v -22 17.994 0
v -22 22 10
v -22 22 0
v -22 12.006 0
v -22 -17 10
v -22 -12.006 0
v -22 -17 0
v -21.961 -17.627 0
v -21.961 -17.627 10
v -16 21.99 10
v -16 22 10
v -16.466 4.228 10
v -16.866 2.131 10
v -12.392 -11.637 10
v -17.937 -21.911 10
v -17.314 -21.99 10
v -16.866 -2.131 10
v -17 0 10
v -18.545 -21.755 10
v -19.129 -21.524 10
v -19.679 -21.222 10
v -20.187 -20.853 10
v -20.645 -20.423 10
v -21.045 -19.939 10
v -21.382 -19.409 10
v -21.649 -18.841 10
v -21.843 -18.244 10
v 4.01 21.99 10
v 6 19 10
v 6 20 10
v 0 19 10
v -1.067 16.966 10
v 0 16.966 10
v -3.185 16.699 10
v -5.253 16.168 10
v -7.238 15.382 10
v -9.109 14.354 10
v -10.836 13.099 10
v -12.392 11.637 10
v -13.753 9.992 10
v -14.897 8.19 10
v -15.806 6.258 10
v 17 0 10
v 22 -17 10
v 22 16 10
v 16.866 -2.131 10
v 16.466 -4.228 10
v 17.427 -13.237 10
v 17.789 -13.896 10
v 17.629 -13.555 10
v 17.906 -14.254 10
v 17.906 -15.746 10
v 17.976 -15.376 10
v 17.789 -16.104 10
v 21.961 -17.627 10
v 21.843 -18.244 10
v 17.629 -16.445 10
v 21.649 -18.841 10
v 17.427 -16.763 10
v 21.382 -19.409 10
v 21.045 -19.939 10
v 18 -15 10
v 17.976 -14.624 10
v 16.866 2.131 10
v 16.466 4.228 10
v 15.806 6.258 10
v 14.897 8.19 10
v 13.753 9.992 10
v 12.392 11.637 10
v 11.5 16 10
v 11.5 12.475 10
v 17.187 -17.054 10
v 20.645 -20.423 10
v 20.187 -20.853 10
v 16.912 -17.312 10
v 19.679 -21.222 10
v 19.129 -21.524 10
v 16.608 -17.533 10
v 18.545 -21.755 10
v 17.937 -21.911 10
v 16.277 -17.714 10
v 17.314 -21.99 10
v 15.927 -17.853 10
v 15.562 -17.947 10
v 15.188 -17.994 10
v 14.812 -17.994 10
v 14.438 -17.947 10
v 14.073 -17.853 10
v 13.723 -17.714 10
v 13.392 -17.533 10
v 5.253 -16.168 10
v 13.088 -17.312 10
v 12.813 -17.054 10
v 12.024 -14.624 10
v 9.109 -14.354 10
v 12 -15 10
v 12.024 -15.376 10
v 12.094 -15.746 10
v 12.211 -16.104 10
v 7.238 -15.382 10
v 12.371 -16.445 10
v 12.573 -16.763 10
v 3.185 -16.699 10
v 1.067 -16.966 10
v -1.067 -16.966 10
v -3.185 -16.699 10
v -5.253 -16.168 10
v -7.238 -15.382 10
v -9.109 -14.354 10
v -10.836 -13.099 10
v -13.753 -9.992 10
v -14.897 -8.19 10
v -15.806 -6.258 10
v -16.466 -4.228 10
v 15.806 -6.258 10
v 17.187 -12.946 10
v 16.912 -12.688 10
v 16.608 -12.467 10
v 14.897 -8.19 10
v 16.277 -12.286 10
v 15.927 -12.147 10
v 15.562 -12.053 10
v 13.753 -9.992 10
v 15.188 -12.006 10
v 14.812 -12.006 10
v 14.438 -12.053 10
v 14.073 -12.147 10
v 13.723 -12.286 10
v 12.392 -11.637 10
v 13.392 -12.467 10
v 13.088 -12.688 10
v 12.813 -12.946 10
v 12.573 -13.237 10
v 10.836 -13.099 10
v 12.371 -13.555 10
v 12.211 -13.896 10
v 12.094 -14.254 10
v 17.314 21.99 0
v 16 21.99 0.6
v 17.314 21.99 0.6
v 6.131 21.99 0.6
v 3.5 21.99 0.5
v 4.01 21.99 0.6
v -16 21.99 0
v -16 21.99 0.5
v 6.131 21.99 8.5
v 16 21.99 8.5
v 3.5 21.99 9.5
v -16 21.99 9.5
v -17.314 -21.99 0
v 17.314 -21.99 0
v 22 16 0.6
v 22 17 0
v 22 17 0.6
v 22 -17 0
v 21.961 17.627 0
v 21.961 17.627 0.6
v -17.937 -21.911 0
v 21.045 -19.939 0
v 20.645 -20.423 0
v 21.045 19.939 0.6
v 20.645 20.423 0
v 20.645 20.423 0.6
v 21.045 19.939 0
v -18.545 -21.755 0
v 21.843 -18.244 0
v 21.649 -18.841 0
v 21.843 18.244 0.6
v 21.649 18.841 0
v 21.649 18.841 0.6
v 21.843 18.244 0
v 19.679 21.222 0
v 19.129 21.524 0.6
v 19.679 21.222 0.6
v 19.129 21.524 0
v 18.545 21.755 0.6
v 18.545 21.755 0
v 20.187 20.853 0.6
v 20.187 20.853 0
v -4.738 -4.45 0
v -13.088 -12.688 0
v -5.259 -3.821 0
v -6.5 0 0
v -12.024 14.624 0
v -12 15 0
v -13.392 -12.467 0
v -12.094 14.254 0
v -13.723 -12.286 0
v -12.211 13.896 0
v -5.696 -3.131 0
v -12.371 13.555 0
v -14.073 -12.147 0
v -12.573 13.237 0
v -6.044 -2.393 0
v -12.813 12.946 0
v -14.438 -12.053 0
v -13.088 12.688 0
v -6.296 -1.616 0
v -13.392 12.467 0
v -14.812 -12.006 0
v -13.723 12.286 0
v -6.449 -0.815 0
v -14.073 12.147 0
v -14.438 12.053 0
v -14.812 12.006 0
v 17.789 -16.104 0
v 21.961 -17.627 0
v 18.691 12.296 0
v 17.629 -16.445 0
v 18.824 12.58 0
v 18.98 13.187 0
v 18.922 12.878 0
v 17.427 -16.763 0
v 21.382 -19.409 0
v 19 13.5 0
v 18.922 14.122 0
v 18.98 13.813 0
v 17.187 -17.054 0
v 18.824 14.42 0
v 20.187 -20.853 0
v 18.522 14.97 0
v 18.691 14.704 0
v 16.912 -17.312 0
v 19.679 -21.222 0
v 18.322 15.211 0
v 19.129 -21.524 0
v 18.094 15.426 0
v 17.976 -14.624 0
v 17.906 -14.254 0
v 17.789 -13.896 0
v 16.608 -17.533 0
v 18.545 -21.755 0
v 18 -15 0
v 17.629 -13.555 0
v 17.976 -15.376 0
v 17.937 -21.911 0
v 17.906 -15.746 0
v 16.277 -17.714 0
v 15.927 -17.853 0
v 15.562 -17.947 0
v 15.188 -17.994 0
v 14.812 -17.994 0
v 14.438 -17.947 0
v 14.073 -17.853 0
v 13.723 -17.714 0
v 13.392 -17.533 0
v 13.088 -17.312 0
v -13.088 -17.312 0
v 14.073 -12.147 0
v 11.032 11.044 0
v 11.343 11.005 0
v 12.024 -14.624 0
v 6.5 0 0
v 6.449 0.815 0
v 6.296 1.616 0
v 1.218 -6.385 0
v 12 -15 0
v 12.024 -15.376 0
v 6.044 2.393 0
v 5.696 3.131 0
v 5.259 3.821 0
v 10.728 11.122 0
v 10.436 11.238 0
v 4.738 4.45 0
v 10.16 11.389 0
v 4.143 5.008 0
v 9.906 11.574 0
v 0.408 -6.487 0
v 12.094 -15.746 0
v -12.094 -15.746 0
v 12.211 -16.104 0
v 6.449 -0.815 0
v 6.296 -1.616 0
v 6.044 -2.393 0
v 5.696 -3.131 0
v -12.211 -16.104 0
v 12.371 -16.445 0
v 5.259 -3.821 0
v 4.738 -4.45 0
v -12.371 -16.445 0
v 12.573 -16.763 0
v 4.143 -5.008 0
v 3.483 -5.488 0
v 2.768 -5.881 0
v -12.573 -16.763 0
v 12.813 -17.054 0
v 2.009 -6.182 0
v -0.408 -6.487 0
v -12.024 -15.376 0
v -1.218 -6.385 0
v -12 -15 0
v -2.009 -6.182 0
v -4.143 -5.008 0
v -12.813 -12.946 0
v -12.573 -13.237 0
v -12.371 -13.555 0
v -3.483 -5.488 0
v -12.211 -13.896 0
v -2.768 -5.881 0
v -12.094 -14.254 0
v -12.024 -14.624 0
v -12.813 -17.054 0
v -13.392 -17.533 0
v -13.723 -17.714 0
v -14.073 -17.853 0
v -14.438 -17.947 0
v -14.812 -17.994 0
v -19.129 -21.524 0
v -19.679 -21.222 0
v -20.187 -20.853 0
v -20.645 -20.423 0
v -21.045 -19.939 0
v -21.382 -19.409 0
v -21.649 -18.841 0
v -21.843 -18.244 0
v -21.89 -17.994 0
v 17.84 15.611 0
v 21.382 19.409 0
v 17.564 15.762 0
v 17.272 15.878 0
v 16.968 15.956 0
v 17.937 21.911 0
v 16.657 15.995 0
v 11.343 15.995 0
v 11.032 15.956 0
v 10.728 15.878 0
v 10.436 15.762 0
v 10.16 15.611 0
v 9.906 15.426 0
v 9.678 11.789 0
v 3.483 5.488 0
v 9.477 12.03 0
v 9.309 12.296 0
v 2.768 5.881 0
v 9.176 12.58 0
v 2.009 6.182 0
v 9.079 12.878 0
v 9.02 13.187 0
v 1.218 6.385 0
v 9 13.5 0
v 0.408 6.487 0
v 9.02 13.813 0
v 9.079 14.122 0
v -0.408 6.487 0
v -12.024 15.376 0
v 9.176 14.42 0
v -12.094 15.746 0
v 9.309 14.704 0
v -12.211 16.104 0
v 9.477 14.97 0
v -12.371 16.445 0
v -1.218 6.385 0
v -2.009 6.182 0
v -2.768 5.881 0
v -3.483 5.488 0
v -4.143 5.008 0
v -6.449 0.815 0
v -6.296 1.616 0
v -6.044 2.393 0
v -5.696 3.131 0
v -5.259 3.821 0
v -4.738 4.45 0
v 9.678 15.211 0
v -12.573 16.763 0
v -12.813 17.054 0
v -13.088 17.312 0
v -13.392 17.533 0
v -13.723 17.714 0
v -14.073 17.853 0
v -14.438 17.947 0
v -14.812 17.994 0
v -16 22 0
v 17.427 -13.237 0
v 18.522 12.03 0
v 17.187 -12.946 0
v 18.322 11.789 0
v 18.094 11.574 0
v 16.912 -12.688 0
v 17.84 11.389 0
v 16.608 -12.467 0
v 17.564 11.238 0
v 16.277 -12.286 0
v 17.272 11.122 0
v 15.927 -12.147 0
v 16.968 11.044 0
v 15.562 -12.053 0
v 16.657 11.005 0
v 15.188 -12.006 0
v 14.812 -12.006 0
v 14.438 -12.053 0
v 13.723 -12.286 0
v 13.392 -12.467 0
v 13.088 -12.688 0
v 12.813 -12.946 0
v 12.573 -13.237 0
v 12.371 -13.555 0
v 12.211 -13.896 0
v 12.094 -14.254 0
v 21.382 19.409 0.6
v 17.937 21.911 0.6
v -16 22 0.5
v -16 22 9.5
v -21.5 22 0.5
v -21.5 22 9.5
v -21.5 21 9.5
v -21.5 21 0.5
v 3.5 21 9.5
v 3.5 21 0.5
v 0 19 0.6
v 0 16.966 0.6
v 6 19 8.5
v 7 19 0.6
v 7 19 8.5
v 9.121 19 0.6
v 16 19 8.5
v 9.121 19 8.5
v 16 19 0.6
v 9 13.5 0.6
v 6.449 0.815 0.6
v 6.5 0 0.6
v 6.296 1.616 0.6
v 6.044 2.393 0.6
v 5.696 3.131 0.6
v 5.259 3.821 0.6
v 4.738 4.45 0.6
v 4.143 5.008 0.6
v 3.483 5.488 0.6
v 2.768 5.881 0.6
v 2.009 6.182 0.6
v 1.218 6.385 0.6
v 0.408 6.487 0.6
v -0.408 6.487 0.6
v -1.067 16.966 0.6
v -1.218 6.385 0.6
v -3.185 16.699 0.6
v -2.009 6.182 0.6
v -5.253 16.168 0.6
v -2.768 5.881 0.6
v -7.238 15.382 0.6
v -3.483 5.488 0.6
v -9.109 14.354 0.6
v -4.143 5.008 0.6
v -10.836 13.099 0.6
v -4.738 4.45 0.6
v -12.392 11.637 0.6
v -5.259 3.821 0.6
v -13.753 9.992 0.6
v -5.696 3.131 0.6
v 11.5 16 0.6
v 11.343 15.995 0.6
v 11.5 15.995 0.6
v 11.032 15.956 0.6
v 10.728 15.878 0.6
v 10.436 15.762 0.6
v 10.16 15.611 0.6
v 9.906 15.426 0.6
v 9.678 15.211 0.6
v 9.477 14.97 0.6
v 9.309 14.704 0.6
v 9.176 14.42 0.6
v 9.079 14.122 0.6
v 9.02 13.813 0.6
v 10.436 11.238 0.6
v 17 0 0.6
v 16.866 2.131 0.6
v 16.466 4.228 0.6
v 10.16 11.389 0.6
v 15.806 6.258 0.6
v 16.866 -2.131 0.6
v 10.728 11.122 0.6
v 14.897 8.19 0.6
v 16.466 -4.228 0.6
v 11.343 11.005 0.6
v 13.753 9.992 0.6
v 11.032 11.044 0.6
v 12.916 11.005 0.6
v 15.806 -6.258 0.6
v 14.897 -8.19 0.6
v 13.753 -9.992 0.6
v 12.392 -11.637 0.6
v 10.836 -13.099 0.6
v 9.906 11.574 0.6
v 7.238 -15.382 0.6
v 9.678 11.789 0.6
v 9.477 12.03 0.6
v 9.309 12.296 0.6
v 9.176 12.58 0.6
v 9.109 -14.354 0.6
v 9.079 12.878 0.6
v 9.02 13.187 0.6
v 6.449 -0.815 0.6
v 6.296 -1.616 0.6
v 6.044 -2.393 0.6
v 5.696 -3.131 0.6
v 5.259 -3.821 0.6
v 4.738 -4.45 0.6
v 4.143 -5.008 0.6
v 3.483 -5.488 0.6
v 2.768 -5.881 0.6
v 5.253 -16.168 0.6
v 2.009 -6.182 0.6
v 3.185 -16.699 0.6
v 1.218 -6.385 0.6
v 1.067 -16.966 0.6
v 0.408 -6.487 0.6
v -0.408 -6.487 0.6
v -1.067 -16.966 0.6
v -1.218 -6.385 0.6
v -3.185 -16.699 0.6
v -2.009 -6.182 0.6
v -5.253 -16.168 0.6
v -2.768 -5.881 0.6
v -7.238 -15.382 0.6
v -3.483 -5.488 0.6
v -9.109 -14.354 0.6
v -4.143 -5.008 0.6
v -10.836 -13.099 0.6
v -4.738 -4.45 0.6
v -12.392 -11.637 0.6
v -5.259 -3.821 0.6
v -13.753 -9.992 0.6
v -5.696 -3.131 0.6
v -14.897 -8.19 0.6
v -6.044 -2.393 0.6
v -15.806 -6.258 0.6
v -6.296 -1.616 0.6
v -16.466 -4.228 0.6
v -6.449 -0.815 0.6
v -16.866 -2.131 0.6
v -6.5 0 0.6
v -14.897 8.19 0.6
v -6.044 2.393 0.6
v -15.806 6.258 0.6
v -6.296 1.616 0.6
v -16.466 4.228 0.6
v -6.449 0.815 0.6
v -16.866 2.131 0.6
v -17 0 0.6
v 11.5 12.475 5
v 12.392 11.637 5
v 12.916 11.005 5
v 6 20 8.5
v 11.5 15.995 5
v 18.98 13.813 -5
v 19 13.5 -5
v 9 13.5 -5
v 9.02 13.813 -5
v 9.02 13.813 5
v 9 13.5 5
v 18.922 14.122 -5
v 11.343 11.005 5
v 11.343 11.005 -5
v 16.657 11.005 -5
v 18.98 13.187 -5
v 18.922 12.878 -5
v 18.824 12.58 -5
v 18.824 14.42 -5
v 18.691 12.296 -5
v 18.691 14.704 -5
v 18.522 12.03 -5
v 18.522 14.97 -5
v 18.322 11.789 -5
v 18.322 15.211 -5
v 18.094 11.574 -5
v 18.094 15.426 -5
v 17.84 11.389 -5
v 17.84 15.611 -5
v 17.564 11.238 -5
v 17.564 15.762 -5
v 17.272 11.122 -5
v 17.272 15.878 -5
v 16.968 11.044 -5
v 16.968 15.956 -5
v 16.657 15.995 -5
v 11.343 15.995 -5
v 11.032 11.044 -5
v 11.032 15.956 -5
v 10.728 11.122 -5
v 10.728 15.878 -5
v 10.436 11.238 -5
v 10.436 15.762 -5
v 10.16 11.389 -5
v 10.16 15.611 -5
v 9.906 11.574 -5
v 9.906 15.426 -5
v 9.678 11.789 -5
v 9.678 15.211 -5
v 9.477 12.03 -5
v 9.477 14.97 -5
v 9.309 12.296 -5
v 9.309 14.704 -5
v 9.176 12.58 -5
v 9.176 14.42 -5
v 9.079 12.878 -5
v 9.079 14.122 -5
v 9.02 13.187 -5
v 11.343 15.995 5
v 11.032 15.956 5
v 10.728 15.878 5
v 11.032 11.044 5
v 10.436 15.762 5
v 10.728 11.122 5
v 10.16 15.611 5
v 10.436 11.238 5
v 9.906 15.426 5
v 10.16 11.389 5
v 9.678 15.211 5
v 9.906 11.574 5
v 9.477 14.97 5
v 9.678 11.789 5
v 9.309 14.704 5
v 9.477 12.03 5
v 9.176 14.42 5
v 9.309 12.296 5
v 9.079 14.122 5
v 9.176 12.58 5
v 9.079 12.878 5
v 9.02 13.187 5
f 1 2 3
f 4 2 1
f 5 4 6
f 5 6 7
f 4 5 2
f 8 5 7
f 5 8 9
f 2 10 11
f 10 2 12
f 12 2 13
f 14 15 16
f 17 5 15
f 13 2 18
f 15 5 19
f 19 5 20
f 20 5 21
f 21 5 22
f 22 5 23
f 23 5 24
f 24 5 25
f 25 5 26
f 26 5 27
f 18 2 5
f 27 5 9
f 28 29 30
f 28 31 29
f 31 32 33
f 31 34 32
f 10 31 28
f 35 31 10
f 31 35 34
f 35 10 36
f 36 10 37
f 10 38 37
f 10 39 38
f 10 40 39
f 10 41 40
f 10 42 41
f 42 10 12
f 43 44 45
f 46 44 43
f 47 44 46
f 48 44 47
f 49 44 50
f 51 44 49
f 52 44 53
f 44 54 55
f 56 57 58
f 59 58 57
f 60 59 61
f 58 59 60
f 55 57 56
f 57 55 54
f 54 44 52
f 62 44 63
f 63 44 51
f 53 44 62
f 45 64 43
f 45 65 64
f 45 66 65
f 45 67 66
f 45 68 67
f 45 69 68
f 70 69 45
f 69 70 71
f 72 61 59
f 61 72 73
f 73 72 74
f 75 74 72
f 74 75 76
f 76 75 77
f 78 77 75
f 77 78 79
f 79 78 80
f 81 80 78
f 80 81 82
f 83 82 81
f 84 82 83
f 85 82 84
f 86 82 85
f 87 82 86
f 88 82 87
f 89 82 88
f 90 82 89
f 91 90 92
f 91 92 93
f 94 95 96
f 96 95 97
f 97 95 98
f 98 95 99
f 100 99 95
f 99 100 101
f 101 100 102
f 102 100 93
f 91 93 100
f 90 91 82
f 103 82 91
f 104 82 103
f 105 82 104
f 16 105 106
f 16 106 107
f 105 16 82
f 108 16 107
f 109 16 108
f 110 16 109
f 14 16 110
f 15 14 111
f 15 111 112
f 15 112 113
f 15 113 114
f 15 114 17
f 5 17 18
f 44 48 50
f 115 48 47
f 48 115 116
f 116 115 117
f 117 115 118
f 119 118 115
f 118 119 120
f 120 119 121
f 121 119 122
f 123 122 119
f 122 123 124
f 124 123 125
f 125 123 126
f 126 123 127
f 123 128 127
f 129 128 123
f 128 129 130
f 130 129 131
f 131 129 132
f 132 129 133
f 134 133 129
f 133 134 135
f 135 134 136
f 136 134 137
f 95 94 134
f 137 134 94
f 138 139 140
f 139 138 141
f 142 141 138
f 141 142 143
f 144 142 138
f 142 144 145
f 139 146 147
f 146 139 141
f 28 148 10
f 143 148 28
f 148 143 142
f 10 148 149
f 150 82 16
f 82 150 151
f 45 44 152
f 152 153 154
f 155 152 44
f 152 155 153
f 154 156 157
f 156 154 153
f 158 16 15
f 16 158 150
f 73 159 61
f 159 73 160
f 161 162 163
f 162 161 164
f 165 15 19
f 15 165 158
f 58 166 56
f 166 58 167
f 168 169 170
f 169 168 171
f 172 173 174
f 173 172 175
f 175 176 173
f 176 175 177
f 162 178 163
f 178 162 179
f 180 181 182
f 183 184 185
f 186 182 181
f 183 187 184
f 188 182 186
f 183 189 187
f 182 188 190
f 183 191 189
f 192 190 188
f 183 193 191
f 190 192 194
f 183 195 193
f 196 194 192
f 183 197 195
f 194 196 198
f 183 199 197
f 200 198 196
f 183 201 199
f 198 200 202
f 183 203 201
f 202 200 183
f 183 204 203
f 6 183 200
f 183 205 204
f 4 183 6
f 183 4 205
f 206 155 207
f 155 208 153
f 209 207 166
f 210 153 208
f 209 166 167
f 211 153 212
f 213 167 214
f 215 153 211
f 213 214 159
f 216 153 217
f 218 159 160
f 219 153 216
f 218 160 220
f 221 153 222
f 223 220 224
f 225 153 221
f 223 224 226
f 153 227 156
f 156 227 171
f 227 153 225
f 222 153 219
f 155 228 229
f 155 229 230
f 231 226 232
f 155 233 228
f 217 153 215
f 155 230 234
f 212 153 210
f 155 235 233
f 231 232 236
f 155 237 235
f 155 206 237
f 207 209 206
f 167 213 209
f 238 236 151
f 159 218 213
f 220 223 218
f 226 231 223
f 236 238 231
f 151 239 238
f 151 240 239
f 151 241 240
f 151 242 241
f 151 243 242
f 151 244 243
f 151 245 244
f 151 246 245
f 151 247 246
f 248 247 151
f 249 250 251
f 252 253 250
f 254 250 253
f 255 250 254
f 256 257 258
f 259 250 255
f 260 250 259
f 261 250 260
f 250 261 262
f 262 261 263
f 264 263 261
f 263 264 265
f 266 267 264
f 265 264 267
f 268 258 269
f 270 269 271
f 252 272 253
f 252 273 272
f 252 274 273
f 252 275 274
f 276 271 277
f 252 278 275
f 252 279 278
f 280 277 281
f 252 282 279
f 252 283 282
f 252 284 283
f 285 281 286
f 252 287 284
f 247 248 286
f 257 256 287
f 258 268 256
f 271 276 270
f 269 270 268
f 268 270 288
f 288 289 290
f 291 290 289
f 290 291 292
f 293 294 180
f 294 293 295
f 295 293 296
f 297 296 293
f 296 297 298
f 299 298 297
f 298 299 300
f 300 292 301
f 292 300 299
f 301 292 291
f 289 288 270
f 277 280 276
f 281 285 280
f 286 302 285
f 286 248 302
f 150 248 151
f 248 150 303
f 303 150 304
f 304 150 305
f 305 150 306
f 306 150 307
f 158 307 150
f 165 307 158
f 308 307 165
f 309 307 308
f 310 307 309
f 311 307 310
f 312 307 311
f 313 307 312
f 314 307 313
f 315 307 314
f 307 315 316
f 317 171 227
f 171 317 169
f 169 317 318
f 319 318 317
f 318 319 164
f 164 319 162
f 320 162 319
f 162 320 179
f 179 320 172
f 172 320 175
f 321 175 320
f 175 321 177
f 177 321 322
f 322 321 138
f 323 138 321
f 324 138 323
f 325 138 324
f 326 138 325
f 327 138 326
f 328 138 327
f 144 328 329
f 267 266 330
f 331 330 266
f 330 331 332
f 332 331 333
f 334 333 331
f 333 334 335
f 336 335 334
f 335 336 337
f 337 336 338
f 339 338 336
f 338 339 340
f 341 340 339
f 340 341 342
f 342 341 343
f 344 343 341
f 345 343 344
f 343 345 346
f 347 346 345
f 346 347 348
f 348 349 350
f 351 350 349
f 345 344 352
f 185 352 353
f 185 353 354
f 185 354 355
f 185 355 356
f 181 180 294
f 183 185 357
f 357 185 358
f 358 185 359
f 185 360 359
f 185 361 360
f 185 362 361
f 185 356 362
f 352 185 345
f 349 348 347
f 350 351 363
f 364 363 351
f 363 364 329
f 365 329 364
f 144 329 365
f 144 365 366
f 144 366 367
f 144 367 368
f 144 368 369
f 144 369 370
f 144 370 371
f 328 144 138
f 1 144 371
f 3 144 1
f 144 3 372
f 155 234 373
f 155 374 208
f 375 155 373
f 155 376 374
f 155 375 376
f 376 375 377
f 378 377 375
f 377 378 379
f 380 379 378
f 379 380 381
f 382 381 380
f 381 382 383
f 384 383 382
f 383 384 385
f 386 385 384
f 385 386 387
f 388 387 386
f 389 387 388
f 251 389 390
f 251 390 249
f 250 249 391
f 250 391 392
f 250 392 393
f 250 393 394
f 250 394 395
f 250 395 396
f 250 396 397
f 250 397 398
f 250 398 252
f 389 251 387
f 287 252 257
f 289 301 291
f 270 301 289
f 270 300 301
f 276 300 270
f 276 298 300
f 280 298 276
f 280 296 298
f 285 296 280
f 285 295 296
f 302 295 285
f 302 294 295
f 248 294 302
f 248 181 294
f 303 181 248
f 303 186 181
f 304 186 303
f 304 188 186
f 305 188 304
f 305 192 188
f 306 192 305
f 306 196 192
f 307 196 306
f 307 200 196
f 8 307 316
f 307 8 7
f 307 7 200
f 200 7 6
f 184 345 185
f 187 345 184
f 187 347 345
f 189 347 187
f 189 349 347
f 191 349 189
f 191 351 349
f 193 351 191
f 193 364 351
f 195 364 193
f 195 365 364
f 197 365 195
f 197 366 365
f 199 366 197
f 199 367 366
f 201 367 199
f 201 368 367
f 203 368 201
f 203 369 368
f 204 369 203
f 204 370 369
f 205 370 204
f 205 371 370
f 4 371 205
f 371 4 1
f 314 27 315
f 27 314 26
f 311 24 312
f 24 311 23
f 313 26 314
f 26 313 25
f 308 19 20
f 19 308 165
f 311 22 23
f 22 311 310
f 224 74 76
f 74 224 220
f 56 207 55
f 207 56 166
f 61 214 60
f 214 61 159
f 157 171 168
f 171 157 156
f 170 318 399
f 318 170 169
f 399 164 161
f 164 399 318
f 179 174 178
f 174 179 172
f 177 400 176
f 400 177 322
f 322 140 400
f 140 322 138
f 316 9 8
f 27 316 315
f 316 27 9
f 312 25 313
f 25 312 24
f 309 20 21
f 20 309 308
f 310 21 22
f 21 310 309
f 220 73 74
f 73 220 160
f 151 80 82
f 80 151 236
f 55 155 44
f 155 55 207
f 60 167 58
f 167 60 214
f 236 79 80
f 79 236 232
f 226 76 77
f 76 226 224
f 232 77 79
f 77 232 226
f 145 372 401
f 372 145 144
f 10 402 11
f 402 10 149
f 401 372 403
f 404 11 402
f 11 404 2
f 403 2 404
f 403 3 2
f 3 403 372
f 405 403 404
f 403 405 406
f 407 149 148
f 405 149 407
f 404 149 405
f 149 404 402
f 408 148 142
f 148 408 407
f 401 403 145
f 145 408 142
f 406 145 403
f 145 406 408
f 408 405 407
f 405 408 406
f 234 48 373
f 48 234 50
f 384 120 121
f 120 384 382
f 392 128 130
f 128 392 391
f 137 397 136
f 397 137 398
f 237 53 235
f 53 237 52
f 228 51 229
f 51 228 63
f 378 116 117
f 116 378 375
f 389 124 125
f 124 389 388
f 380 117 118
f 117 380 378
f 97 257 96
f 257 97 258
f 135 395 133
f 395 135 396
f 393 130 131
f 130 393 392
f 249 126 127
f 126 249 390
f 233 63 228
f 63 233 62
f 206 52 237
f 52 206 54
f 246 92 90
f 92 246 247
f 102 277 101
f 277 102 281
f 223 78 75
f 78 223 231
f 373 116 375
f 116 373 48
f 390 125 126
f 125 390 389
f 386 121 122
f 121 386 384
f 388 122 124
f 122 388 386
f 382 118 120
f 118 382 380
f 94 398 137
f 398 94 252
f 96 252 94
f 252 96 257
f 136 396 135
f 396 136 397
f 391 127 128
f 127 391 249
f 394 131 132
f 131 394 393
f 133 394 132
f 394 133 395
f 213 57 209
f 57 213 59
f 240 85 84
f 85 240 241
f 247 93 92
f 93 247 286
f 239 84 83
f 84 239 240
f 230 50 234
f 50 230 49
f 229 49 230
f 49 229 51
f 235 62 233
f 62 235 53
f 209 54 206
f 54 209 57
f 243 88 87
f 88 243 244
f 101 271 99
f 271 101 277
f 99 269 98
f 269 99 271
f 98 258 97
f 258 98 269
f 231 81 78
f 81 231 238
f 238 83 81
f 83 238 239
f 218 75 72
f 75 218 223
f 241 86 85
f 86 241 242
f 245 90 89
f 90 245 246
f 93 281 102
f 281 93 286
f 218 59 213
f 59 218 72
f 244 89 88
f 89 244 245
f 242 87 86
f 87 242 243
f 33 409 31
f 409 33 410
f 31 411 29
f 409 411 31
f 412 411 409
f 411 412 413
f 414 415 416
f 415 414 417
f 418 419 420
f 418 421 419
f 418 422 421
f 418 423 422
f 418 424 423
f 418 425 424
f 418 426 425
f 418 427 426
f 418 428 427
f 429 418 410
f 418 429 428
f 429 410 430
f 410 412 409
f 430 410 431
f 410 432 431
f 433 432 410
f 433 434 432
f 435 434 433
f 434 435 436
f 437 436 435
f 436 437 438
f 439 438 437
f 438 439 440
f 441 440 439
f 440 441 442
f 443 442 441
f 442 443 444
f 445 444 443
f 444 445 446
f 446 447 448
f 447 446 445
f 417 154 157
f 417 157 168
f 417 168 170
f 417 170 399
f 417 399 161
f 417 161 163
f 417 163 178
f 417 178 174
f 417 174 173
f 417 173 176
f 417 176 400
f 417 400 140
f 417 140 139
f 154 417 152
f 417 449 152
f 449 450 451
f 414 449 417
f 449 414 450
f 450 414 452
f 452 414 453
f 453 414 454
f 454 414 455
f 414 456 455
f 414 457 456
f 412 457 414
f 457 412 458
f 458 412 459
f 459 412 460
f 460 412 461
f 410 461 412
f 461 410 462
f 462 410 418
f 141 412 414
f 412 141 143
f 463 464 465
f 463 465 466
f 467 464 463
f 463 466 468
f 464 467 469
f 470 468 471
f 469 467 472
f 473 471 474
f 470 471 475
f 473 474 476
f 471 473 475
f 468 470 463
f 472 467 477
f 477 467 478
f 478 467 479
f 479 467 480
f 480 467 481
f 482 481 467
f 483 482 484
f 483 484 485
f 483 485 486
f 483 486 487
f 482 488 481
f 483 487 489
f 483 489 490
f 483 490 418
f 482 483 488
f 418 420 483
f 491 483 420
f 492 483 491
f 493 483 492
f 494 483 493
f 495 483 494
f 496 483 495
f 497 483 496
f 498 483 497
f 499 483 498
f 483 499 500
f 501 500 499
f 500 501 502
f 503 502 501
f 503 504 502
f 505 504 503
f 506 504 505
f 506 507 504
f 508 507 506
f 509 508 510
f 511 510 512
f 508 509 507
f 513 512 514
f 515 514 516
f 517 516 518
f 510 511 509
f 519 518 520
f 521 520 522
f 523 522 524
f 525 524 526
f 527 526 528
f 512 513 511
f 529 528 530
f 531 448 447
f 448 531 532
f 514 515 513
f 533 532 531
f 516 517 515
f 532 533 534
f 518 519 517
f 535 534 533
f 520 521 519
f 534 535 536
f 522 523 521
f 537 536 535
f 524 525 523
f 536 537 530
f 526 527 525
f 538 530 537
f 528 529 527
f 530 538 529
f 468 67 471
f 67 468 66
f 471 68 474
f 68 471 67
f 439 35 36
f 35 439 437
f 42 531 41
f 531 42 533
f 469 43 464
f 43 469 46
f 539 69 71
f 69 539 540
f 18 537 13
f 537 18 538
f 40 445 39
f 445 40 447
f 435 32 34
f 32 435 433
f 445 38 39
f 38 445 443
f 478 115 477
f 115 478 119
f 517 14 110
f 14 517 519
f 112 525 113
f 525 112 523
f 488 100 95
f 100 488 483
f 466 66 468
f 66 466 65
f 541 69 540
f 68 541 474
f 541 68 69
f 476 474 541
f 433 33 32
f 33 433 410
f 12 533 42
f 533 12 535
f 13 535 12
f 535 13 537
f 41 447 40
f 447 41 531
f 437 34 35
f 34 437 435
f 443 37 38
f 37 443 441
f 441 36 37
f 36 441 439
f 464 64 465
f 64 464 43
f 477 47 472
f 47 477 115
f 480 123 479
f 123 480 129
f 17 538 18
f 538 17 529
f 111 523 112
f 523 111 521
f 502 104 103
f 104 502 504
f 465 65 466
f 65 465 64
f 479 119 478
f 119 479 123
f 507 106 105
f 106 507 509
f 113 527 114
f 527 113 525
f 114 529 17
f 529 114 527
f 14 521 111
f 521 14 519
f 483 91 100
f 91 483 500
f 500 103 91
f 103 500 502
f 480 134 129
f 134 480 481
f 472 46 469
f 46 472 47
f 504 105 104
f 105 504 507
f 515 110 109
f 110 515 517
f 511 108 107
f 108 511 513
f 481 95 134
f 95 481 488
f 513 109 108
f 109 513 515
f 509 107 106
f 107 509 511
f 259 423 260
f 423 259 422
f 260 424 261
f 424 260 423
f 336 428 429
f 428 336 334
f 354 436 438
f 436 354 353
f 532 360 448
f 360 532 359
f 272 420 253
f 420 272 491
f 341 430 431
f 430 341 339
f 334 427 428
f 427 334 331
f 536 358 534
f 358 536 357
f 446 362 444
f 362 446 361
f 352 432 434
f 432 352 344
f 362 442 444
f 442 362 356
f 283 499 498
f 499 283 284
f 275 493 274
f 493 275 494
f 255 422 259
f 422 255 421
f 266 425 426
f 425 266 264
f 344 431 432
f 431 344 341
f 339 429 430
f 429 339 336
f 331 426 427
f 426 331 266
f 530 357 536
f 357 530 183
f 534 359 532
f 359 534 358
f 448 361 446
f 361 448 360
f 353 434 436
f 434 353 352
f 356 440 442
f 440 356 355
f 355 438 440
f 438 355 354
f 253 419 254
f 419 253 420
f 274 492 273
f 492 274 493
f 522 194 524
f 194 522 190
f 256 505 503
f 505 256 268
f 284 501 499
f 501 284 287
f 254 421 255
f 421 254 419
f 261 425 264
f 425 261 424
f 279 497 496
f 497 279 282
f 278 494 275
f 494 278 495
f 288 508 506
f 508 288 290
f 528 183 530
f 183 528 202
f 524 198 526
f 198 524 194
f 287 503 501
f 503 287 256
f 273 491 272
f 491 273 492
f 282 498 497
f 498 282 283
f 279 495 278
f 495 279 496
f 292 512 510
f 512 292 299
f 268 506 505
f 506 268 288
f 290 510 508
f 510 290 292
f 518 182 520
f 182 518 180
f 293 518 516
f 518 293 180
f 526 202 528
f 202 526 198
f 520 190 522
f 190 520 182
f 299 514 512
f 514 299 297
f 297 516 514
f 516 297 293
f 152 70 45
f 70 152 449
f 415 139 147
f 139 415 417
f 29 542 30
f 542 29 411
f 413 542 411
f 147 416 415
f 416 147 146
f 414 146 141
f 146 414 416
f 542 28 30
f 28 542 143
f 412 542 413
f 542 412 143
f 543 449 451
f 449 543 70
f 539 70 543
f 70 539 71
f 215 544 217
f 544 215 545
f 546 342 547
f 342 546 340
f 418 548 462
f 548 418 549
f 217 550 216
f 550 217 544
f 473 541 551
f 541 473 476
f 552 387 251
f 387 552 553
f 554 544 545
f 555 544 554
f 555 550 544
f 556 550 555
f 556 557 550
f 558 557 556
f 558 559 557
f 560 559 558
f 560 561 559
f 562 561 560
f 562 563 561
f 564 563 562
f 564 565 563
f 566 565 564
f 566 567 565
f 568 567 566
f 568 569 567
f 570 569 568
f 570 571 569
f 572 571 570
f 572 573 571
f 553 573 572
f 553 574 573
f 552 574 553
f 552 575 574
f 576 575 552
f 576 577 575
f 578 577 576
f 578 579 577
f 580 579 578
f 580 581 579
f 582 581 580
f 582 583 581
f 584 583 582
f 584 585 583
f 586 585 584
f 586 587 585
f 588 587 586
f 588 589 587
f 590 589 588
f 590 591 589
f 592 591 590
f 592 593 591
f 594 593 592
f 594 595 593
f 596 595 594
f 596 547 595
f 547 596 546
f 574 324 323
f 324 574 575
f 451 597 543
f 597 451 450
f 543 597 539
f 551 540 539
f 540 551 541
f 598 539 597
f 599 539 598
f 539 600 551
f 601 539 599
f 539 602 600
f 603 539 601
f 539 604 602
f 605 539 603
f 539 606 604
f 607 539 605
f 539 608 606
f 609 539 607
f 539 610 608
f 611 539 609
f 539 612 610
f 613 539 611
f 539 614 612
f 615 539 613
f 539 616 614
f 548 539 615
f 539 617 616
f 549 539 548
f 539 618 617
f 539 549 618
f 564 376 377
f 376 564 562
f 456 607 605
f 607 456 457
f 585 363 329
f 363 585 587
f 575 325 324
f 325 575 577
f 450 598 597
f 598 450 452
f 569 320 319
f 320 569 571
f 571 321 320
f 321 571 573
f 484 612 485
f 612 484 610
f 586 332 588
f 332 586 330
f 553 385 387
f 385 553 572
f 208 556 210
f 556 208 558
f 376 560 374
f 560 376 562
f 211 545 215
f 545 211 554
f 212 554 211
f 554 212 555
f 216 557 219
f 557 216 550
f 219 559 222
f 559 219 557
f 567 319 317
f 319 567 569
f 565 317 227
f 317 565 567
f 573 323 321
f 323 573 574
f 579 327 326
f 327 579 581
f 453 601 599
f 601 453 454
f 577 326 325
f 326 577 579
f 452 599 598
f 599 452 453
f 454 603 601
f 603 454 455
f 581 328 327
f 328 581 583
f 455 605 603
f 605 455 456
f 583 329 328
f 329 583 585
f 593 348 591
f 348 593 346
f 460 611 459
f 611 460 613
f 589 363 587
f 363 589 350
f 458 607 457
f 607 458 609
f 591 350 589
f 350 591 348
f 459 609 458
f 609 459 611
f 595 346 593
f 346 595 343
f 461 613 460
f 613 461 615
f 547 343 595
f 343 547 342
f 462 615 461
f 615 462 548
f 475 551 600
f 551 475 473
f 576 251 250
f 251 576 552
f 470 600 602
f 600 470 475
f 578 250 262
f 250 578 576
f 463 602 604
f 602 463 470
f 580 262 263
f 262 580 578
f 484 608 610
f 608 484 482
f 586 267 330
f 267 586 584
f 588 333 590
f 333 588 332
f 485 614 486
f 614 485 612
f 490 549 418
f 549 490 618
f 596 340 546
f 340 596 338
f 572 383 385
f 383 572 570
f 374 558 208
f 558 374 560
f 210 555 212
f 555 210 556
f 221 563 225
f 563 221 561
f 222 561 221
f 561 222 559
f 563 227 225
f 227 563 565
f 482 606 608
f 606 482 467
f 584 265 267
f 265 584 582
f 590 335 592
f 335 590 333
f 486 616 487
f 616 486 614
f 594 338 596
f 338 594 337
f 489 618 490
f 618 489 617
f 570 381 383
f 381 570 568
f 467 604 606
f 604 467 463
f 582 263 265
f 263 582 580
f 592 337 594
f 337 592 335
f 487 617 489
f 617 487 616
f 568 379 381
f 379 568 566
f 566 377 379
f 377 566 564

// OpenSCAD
$fn = 50;


union() {
	difference() {
		union() {
			hull() {
				translate(v = [-17.0000000000, 17.0000000000, 0]) {
					cylinder(h = 10, r = 5);
				}
				translate(v = [17.0000000000, 17.0000000000, 0]) {
					cylinder(h = 10, r = 5);
				}
				translate(v = [-17.0000000000, -17.0000000000, 0]) {
					cylinder(h = 10, r = 5);
				}
				translate(v = [17.0000000000, -17.0000000000, 0]) {
					cylinder(h = 10, r = 5);
				}
			}
			translate(v = [-22.0000000000, 16.0000000000, 0]) {
				cube(size = [6, 6, 10]);
			}
		}
		union() {
			translate(v = [-22.5000000000, -15.0000000000, -250.0000000000]) {
				rotate(a = [0, 0, 0]) {
					difference() {
						union() {
							hull() {
								translate(v = [7.5000000000, 0, 0]) {
									cylinder(h = 250, r = 3.0000000000, r1 = 3.0000000000, r2 = 3.0000000000);
								}
								translate(v = [-7.5000000000, 0, 0]) {
									cylinder(h = 250, r = 3.0000000000, r1 = 3.0000000000, r2 = 3.0000000000);
								}
							}
						}
						union();
					}
				}
			}
			translate(v = [-22.5000000000, 15.0000000000, -250.0000000000]) {
				rotate(a = [0, 0, 0]) {
					difference() {
						union() {
							hull() {
								translate(v = [7.5000000000, 0, 0]) {
									cylinder(h = 250, r = 3.0000000000, r1 = 3.0000000000, r2 = 3.0000000000);
								}
								translate(v = [-7.5000000000, 0, 0]) {
									cylinder(h = 250, r = 3.0000000000, r1 = 3.0000000000, r2 = 3.0000000000);
								}
							}
						}
						union();
					}
				}
			}
			translate(v = [-21.5000000000, 21.0000000000, 0.5000000000]) {
				cube(size = [25, 1, 9.0000000000]);
			}
			translate(v = [15.0000000000, -15.0000000000, 0]) {
				cylinder(h = 100, r = 3.0000000000);
			}
			translate(v = [0.0000000000, 11.0000000000, 0.6000000000]) {
				cube(size = [11, 8, 12.4000000000]);
			}
			translate(v = [0, 0, 0.6000000000]) {
				cylinder(h = 12.4000000000, r = 17.0000000000);
			}
			translate(v = [0, 0, -5.0000000000]) {
				cylinder(h = 10, r = 6.5000000000);
			}
			translate(v = [0.0000000000, 16.0000000000, 0.6000000000]) {
				cube(size = [22.0000000000, 3, 12.4000000000]);
			}
			translate(v = [16.0000000000, 16.0000000000, 0.6000000000]) {
				cube(size = [6, 6, 12.4000000000]);
			}
			translate(v = [6.0000000000, 16.0000000000, 8.5000000000]) {
				cube(size = [16, 6, 1.5000000000]);
			}
			translate(v = [3.2500000000, 22.7500000000, 0.6000000000]) {
				rotate(a = [0, 0, -45]) {
					cube(size = [7.5000000000, 1.5000000000, 12.4000000000]);
				}
			}
			translate(v = [2.5000000000, 11.0000000000, 0.6000000000]) {
				cube(size = [9.0000000000, 5, 9.4000000000]);
			}
		}
	}
	union() {
		translate(v = [14, 13.5000000000, -5.0000000000]) {
			rotate(a = [0, 0, 0]) {
				difference() {
					union() {
						#hull() {
							#translate(v = [2.5000000000, 0, 0]) {
								cylinder(h = 10, r = 2.5000000000, r1 = 2.5000000000, r2 = 2.5000000000);
							}
							#translate(v = [-2.5000000000, 0, 0]) {
								cylinder(h = 10, r = 2.5000000000, r1 = 2.5000000000, r2 = 2.5000000000);
							}
						}
					}
					union();
				}
			}
		}
	}
}
